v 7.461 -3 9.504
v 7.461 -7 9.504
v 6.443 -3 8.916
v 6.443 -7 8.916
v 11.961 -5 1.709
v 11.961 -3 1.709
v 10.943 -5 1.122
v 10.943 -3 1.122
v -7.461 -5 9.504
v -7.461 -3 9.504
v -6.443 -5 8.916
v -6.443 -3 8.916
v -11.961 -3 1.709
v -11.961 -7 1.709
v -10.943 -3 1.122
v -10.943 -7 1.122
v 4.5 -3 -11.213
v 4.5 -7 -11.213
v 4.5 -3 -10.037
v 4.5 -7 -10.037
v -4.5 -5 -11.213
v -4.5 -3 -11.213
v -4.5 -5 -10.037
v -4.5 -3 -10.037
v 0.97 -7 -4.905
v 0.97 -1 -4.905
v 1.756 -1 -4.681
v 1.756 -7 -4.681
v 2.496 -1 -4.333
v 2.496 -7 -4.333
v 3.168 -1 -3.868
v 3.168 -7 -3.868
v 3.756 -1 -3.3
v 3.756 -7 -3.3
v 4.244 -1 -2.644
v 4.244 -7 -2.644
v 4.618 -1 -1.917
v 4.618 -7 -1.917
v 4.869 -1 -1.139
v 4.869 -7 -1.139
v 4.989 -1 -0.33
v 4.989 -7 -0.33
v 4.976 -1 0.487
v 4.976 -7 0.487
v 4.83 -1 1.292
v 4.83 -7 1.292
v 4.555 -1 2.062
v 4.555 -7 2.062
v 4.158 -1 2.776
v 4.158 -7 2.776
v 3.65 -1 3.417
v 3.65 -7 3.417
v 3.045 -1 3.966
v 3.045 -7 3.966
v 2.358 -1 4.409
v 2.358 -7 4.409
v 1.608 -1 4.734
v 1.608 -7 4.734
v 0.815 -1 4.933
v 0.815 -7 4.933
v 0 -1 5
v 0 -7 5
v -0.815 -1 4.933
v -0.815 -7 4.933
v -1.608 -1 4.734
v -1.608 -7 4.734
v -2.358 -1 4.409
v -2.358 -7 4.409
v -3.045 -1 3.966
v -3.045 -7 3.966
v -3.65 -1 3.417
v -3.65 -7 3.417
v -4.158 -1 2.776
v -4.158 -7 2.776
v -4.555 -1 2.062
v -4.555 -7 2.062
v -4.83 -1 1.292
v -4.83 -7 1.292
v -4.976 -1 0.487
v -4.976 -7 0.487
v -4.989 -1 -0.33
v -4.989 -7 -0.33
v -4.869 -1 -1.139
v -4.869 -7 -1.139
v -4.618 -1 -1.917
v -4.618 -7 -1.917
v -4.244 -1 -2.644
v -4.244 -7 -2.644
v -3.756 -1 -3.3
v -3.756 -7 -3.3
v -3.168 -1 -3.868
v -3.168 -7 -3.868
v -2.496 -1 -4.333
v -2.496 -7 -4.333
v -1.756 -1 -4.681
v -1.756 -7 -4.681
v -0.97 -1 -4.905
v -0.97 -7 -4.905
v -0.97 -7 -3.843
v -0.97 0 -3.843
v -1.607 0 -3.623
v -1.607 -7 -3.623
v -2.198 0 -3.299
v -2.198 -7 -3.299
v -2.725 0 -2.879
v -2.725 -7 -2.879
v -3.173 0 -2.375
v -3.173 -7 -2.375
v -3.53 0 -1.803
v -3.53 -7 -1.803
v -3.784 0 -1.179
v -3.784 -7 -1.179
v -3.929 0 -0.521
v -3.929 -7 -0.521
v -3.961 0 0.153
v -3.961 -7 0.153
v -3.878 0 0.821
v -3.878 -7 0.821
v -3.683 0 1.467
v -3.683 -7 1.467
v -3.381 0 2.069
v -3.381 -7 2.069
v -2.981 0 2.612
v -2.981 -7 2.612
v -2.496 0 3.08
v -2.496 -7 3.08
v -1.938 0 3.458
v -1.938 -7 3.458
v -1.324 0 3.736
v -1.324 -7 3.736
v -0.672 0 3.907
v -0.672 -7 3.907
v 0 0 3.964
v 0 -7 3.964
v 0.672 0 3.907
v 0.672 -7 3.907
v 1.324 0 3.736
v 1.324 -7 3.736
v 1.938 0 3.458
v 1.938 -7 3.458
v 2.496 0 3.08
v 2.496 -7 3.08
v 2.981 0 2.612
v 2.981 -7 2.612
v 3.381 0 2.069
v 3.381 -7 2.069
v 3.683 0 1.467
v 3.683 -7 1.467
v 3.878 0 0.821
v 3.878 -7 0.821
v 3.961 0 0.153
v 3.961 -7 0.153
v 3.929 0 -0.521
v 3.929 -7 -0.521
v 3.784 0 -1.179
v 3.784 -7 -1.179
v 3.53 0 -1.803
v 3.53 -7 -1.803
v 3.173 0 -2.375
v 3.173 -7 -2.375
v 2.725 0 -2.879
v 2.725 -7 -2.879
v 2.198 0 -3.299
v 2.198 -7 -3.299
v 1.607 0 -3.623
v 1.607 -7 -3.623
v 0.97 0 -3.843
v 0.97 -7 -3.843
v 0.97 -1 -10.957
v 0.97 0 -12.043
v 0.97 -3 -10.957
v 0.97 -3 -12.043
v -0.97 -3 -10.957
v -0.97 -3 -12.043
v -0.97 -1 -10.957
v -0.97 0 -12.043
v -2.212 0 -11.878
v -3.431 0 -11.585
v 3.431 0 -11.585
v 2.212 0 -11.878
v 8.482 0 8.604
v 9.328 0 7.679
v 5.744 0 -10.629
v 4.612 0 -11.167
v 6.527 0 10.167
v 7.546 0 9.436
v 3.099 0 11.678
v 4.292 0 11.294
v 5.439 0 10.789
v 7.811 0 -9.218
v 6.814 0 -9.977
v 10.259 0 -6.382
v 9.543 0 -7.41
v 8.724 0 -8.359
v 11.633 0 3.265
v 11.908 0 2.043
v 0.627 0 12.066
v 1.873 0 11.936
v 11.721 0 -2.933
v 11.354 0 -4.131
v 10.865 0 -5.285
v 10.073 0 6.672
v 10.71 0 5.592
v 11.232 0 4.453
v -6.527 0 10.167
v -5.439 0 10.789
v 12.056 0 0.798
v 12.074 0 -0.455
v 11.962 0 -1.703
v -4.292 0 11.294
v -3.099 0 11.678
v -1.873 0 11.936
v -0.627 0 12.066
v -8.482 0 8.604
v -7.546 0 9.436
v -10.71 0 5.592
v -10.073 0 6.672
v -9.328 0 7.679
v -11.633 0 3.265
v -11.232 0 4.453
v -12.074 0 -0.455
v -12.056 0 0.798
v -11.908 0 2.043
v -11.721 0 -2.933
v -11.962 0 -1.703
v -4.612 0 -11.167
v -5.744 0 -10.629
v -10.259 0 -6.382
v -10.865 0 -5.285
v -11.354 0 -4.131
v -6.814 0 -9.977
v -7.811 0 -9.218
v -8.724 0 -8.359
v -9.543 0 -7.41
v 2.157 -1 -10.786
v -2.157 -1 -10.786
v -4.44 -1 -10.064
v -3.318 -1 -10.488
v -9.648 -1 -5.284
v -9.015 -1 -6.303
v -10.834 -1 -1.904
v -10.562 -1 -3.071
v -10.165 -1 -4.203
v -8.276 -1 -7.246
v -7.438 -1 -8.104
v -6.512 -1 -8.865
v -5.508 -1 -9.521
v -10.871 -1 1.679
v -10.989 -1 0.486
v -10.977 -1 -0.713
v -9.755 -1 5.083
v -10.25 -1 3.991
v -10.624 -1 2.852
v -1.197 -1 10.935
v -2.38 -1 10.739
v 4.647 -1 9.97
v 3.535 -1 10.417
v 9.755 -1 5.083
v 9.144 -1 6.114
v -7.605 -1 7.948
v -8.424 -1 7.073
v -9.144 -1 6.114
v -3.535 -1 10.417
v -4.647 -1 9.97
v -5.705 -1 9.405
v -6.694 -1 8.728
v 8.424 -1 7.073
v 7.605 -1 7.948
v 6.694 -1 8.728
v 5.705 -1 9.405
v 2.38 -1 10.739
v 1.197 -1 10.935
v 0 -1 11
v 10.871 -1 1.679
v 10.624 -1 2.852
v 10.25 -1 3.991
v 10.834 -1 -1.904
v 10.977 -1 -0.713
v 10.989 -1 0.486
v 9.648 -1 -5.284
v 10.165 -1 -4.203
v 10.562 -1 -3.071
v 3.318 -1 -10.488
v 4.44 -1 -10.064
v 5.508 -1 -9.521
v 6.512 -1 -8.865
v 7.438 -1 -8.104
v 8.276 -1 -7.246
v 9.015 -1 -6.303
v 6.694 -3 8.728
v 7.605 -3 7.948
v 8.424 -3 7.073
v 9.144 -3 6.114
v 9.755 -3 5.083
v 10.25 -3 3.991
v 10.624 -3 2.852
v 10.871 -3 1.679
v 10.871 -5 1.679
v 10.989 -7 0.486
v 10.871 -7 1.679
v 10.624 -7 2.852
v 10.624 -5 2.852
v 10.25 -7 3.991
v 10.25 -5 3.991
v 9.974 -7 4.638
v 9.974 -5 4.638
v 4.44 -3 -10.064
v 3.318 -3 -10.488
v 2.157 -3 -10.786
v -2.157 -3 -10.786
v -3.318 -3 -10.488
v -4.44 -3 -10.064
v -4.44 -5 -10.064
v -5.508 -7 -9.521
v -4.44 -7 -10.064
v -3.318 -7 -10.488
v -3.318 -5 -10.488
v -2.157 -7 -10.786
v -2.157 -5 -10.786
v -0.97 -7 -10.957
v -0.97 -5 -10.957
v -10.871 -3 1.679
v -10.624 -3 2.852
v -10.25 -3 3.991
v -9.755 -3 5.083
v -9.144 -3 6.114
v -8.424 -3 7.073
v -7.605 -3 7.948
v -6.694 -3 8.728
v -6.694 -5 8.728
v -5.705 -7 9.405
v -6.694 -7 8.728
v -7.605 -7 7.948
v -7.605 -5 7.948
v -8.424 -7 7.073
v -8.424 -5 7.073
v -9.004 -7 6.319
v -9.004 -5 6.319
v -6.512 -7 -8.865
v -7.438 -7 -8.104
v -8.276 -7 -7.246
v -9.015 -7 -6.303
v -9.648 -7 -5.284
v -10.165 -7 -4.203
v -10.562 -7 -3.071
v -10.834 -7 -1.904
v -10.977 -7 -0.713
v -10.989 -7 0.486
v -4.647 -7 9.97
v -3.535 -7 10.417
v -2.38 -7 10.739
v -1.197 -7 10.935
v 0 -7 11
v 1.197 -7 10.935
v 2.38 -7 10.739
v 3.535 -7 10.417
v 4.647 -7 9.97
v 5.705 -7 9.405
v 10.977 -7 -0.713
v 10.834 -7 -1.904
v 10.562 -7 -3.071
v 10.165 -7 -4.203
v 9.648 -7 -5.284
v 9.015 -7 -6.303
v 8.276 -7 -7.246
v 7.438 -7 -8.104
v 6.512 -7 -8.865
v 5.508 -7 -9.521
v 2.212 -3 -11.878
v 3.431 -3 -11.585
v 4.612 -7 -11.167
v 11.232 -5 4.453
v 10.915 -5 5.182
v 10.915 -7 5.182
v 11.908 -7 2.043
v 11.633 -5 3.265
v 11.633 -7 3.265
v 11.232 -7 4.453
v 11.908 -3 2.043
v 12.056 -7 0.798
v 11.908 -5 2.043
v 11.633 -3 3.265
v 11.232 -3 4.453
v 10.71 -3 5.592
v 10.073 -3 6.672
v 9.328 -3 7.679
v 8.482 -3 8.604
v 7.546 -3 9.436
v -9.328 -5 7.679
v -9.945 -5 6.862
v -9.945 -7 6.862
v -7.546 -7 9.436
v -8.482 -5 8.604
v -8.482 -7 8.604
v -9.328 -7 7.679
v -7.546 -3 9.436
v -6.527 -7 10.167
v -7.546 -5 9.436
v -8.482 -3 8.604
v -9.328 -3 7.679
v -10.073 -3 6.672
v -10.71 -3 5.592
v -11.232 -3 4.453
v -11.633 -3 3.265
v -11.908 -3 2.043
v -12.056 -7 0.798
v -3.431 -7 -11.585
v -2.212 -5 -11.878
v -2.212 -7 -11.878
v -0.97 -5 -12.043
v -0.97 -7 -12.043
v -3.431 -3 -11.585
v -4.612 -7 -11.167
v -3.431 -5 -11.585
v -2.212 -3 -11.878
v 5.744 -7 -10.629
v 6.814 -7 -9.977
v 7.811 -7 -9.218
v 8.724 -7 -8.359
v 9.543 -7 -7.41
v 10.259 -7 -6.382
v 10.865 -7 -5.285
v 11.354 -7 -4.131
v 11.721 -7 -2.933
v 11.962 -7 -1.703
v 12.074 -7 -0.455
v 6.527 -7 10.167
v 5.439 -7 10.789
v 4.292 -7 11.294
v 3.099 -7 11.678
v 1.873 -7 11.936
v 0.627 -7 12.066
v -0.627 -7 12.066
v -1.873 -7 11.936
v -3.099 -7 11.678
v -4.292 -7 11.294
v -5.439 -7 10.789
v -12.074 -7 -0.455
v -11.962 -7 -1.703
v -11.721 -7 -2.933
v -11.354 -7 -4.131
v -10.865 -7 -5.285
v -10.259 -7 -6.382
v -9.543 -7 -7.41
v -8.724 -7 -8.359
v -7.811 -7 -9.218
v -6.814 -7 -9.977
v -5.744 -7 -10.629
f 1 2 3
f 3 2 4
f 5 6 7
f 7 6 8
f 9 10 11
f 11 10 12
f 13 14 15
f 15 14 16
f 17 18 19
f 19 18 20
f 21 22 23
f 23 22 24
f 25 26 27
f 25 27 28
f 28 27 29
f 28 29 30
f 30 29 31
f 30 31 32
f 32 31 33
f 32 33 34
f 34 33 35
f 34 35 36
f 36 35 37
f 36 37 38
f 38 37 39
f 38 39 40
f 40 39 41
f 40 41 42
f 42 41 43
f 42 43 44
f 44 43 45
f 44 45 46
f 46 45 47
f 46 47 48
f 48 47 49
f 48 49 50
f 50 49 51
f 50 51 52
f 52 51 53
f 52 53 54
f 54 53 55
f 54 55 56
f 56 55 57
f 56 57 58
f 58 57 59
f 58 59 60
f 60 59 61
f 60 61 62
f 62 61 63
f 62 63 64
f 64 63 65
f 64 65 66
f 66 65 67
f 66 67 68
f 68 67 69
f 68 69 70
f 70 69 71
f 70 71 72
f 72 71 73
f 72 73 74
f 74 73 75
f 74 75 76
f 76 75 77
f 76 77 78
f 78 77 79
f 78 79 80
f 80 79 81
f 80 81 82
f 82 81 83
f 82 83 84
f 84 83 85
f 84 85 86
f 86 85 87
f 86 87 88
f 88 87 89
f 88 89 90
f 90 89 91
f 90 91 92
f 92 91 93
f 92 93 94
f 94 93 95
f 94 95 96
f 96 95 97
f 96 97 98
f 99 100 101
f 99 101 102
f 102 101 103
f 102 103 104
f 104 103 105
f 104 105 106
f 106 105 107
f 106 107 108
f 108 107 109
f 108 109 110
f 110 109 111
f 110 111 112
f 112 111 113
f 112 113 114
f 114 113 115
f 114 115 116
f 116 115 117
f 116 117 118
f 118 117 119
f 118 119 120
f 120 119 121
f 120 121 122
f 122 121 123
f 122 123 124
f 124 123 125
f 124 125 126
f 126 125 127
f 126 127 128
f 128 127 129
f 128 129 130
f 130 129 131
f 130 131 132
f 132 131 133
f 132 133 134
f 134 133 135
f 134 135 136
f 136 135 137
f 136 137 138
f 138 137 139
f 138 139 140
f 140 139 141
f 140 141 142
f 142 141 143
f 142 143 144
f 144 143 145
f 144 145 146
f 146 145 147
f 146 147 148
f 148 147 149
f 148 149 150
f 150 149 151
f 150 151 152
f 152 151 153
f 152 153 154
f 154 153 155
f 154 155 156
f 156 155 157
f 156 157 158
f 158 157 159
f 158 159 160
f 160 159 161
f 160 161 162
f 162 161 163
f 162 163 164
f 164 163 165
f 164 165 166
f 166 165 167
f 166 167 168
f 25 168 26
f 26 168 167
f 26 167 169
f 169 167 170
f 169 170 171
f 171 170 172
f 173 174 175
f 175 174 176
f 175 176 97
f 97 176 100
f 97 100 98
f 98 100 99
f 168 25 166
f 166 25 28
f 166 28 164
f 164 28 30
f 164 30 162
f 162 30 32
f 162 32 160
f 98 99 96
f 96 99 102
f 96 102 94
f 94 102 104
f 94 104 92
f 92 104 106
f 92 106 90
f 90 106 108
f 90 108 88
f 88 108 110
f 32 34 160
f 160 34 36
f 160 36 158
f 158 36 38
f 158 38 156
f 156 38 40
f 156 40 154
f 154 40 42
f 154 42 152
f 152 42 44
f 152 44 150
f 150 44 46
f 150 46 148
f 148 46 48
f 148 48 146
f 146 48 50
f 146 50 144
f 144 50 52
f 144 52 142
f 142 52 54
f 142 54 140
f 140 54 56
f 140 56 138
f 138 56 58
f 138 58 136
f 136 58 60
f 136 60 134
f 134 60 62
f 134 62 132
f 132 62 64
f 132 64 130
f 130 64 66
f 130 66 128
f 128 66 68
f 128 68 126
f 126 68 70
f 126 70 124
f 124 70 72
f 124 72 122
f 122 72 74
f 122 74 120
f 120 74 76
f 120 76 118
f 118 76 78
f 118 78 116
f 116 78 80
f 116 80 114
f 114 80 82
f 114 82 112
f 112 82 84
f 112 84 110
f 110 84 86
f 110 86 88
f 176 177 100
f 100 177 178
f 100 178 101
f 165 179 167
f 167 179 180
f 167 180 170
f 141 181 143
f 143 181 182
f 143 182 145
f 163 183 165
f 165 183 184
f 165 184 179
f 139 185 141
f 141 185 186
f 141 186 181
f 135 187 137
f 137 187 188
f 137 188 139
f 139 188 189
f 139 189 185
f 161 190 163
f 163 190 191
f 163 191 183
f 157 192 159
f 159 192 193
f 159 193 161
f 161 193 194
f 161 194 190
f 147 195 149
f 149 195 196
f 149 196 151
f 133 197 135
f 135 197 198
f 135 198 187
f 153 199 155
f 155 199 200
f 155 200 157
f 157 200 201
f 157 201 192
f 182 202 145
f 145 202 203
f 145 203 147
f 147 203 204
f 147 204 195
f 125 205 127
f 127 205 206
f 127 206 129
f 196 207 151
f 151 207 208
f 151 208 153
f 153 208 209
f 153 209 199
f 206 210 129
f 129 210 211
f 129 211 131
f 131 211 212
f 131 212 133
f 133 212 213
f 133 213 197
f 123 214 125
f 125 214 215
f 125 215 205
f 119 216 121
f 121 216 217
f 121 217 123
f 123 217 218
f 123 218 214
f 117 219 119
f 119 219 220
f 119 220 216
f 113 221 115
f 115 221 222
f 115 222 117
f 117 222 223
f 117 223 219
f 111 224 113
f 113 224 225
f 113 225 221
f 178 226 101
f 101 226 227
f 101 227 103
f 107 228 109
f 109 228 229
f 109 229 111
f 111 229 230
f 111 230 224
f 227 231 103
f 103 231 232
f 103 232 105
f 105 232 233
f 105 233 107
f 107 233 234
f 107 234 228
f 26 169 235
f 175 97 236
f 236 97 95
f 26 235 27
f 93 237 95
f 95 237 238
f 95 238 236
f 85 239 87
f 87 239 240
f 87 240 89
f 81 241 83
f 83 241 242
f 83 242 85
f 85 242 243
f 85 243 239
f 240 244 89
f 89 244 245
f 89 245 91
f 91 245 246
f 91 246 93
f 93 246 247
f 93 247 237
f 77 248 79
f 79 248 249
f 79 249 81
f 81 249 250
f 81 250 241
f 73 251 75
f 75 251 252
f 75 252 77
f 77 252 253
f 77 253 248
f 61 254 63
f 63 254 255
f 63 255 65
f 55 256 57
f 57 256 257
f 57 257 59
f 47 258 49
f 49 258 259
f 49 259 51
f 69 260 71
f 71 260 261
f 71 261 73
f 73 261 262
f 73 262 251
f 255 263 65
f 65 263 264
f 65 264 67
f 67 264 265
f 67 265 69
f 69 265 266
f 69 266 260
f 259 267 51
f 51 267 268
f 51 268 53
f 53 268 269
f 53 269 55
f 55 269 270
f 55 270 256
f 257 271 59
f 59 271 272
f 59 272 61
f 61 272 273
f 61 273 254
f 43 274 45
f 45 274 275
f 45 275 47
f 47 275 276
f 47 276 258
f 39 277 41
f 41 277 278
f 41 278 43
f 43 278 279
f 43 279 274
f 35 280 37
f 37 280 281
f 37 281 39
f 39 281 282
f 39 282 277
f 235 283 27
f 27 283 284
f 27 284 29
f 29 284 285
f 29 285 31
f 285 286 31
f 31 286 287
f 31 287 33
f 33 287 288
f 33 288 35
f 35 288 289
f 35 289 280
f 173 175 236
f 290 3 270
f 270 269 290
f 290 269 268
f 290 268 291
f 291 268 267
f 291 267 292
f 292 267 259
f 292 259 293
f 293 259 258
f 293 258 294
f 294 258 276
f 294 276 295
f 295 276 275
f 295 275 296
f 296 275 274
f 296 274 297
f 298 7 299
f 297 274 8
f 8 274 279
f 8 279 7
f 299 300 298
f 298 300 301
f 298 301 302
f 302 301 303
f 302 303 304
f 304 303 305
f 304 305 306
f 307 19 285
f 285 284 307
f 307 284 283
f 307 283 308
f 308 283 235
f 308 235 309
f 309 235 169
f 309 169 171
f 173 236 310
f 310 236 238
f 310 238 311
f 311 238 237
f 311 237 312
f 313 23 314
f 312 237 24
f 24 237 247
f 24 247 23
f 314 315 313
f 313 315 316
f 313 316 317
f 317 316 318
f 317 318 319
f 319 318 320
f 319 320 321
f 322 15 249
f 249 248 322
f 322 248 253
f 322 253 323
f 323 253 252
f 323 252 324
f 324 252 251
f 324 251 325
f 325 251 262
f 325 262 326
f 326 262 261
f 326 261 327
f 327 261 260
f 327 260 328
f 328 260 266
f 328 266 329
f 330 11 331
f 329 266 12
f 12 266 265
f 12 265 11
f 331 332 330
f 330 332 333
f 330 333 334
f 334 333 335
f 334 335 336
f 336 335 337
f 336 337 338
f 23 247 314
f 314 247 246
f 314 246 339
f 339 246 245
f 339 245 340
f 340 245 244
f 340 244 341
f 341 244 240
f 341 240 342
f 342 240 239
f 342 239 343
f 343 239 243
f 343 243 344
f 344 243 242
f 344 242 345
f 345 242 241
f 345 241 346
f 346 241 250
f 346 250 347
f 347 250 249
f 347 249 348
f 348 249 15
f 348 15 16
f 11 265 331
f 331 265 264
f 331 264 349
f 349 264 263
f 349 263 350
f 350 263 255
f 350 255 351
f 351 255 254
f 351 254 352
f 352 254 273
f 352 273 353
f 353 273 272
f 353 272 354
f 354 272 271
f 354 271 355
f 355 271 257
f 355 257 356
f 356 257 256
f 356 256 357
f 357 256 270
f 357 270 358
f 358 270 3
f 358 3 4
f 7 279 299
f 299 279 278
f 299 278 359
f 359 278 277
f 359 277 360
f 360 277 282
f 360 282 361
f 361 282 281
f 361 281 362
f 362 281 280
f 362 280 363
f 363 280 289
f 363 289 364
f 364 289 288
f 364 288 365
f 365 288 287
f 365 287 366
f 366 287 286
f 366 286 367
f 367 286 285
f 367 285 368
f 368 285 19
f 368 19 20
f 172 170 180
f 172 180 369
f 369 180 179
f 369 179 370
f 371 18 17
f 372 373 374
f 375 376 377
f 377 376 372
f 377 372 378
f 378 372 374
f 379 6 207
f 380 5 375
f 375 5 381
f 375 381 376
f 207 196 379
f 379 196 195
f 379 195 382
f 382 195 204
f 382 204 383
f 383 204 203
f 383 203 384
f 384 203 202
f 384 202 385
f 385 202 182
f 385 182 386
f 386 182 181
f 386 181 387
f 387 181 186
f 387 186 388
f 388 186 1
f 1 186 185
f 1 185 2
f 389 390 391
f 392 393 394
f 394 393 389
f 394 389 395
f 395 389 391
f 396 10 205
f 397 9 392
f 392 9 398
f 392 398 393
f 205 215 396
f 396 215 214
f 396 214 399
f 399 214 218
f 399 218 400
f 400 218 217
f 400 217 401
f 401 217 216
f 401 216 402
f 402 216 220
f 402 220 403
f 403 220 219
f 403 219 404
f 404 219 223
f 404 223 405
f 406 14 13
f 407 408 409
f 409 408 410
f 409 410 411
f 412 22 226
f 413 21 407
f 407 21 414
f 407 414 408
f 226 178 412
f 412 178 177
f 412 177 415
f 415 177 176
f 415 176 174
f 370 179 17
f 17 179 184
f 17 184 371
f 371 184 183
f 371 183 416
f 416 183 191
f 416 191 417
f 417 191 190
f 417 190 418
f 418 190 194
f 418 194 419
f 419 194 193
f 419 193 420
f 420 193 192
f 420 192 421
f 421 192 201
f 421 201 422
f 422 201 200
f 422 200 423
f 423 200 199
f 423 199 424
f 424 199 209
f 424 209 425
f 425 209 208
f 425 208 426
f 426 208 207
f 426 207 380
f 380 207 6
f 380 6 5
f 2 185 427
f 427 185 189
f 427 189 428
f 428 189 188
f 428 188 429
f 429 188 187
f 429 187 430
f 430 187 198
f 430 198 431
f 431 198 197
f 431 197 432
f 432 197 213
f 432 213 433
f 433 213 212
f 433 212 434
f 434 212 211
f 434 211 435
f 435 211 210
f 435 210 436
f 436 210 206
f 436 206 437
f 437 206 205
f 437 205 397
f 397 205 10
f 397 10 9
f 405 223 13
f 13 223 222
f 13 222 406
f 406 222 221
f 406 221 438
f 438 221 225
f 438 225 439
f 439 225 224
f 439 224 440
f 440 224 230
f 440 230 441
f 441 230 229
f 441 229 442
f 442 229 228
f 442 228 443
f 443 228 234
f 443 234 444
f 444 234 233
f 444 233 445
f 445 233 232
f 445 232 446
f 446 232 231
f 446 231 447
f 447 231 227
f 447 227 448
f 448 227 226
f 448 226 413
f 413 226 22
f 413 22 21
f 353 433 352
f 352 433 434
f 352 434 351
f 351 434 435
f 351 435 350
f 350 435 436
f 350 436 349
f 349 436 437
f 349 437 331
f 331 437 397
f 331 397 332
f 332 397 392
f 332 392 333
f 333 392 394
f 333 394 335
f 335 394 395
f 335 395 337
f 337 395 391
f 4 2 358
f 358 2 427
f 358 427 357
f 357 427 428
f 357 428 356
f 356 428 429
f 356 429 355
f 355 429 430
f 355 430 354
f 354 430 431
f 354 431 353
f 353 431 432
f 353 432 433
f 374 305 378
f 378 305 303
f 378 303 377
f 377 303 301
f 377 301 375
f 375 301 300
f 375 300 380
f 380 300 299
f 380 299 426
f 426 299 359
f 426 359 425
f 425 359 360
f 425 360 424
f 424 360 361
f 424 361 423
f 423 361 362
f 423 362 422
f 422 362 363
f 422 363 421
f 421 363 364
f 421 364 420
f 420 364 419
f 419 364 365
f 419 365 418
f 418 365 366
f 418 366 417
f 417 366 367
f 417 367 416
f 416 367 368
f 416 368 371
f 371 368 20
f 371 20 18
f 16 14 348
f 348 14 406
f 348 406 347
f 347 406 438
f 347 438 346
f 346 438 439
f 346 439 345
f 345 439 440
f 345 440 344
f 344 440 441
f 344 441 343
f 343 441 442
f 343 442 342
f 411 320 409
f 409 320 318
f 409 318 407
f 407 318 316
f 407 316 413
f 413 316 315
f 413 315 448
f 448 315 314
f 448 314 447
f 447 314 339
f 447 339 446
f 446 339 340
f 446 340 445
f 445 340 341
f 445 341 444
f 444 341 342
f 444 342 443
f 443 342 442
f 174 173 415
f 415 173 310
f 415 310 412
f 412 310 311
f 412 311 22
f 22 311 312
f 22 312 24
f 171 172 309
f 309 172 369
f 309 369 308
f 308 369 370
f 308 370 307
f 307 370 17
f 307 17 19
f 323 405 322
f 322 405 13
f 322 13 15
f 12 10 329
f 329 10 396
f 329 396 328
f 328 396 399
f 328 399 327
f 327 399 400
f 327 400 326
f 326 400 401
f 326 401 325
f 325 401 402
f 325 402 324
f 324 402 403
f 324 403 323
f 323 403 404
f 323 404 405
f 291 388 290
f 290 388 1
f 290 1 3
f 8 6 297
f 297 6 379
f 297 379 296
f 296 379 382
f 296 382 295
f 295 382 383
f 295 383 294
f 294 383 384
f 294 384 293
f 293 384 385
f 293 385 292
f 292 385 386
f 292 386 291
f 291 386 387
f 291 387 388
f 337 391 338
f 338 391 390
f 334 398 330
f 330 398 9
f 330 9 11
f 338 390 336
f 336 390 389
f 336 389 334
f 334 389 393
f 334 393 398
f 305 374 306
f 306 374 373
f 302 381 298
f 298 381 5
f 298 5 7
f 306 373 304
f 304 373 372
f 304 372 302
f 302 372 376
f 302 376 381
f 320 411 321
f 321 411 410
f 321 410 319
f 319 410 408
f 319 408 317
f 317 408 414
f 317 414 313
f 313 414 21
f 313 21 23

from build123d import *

# Parameters (mm, degrees)
BOSS_EXTRUDE3_DEPTH = 7
BOSS_EXTRUDE4_DEPTH = 1
BOSS_EXTRUDE5_DEPTH = 7
BOSS_EXTRUDE6_DEPTH = 3
BOSS_EXTRUDE7_START = -5
BOSS_EXTRUDE7_DEPTH = 2


with BuildPart() as part:
    # Sketch1 → Boss-Extrude3 (new body)
    with BuildSketch(Plane(origin=(0, 0, 0), x_dir=(1, 0, 0), z_dir=(0, 1, 0))):
        with BuildLine():
            Line((0.970071849, 4.904993436), (0.970071849, 3.843317436))
            ThreePointArc((0.970071849, 3.843317436), (0, -3.96385271), (-0.970071849, 3.843317436))
            Line((-0.970071849, 3.843317436), (-0.970071849, 4.904993436))
            ThreePointArc((-0.970071849, 4.904993436), (0, -5), (0.970071849, 4.904993436))
        make_face()
    extrude(amount=-BOSS_EXTRUDE3_DEPTH)

    # Sketch1<6> → Boss-Extrude4 (add)
    with BuildSketch(Plane(origin=(0, 0, 0), x_dir=(1, 0, 0), z_dir=(0, 1, 0))):
        with BuildLine():
            Line((0.970071849, 10.957141991), (0.970071849, 4.904993436))
            ThreePointArc((0.970071849, 4.904993436), (0, -5), (-0.970071849, 4.904993436))
            Line((-0.970071849, 4.904993436), (-0.970071849, 10.957141991))
            ThreePointArc((-0.970071849, 10.957141991), (0, -11), (0.970071849, 10.957141991))
        make_face()
    extrude(amount=-BOSS_EXTRUDE4_DEPTH)

    # Sketch1<7> → Boss-Extrude5 (add)
    with BuildSketch(Plane(origin=(0, 0, 0), x_dir=(1, 0, 0), z_dir=(0, 1, 0))):
        with BuildLine():
            ThreePointArc((-7.460787851, -9.503640297), (0, -12.082323214), (7.460787851, -9.503640297))
            Line((7.460787851, -9.503640297), (6.442669325, -8.915829292))
            ThreePointArc((6.442669325, -8.915829292), (0, -11), (-6.442669325, -8.915829292))
            Line((-6.442669325, -8.915829292), (-7.460787851, -9.503640297))
        make_face()
        with BuildLine():
            Line((10.942669325, -1.121600658), (11.960787851, -1.709411663))
            ThreePointArc((11.960787851, -1.709411663), (12.051901073, -0.856863332), (12.082323214, 0))
            ThreePointArc((12.082323214, 0), (10.008820827, 6.768015949), (4.5, 11.21305196))
            Line((4.5, 11.21305196), (4.5, 10.03742995))
            ThreePointArc((4.5, 10.03742995), (9.233092656, 5.979130372), (11, 0))
            ThreePointArc((11, 0), (10.985657982, -0.561532466), (10.942669325, -1.121600658))
        make_face()
        with BuildLine():
            ThreePointArc((-4.5, 11.21305196), (-10.46359884, 6.041161607), (-11.960787851, -1.709411663))
            Line((-11.960787851, -1.709411663), (-10.942669325, -1.121600658))
            ThreePointArc((-10.942669325, -1.121600658), (-9.526279442, 5.5), (-4.5, 10.03742995))
            Line((-4.5, 10.03742995), (-4.5, 11.21305196))
        make_face()
    extrude(amount=-BOSS_EXTRUDE5_DEPTH)

    # Sketch1<8> → Boss-Extrude6 (add)
    with BuildSketch(Plane(origin=(0, 0, 0), x_dir=(1, 0, 0), z_dir=(0, 1, 0))):
        with BuildLine():
            Line((11.960787851, -1.709411663), (10.942669325, -1.121600658))
            ThreePointArc((10.942669325, -1.121600658), (9.526279442, -5.5), (6.442669325, -8.915829292))
            Line((6.442669325, -8.915829292), (7.460787851, -9.503640297))
            ThreePointArc((7.460787851, -9.503640297), (10.46359884, -6.041161607), (11.960787851, -1.709411663))
        make_face()
        with BuildLine():
            Line((4.5, 10.03742995), (4.5, 11.21305196))
            ThreePointArc((4.5, 11.21305196), (2.766361636, 11.761368014), (0.970071849, 12.043317436))
            Line((0.970071849, 12.043317436), (0.970071849, 10.957141991))
            ThreePointArc((0.970071849, 10.957141991), (2.773425512, 10.644628267), (4.5, 10.03742995))
        make_face()
        with BuildLine():
            Line((-7.460787851, -9.503640297), (-6.442669325, -8.915829292))
            ThreePointArc((-6.442669325, -8.915829292), (-9.526279442, -5.5), (-10.942669325, -1.121600658))
            Line((-10.942669325, -1.121600658), (-11.960787851, -1.709411663))
            ThreePointArc((-11.960787851, -1.709411663), (-10.46359884, -6.041161607), (-7.460787851, -9.503640297))
        make_face()
        with BuildLine():
            Line((-0.970071849, 10.957141991), (-0.970071849, 12.043317436))
            ThreePointArc((-0.970071849, 12.043317436), (-2.766361636, 11.761368014), (-4.5, 11.21305196))
            Line((-4.5, 11.21305196), (-4.5, 10.03742995))
            ThreePointArc((-4.5, 10.03742995), (-2.773425512, 10.644628267), (-0.970071849, 10.957141991))
        make_face()
    extrude(amount=-BOSS_EXTRUDE6_DEPTH)

    # Sketch1<9> → Boss-Extrude7 (add)
    with BuildSketch(Plane(origin=(0, 0, 0), x_dir=(1, 0, 0), z_dir=(0, 1, 0)).offset(BOSS_EXTRUDE7_START)):
        with BuildLine():
            ThreePointArc((-9.944782921, -6.861765583), (-8.802462665, -8.276423459), (-7.460787851, -9.503640297))
            Line((-7.460787851, -9.503640297), (-6.442669325, -8.915829292))
            ThreePointArc((-6.442669325, -8.915829292), (-7.831805737, -7.724171082), (-9.004127392, -6.31867786))
            Line((-9.004127392, -6.31867786), (-9.944782921, -6.861765583))
        make_face()
        with BuildLine():
            ThreePointArc((10.91485477, -5.181551853), (11.568824301, -3.484944554), (11.960787851, -1.709411663))
            Line((11.960787851, -1.709411663), (10.942669325, -1.121600658))
            ThreePointArc((10.942669325, -1.121600658), (10.605231248, -2.920457185), (9.974199241, -4.638464131))
            Line((9.974199241, -4.638464131), (10.91485477, -5.181551853))
        make_face()
        with BuildLine():
            Line((-0.970071849, 10.957141991), (-0.970071849, 12.043317436))
            ThreePointArc((-0.970071849, 12.043317436), (-2.766361636, 11.761368014), (-4.5, 11.21305196))
            Line((-4.5, 11.21305196), (-4.5, 10.03742995))
            ThreePointArc((-4.5, 10.03742995), (-2.773425512, 10.644628267), (-0.970071849, 10.957141991))
        make_face()
    extrude(amount=-BOSS_EXTRUDE7_DEPTH)


solid = part.part
